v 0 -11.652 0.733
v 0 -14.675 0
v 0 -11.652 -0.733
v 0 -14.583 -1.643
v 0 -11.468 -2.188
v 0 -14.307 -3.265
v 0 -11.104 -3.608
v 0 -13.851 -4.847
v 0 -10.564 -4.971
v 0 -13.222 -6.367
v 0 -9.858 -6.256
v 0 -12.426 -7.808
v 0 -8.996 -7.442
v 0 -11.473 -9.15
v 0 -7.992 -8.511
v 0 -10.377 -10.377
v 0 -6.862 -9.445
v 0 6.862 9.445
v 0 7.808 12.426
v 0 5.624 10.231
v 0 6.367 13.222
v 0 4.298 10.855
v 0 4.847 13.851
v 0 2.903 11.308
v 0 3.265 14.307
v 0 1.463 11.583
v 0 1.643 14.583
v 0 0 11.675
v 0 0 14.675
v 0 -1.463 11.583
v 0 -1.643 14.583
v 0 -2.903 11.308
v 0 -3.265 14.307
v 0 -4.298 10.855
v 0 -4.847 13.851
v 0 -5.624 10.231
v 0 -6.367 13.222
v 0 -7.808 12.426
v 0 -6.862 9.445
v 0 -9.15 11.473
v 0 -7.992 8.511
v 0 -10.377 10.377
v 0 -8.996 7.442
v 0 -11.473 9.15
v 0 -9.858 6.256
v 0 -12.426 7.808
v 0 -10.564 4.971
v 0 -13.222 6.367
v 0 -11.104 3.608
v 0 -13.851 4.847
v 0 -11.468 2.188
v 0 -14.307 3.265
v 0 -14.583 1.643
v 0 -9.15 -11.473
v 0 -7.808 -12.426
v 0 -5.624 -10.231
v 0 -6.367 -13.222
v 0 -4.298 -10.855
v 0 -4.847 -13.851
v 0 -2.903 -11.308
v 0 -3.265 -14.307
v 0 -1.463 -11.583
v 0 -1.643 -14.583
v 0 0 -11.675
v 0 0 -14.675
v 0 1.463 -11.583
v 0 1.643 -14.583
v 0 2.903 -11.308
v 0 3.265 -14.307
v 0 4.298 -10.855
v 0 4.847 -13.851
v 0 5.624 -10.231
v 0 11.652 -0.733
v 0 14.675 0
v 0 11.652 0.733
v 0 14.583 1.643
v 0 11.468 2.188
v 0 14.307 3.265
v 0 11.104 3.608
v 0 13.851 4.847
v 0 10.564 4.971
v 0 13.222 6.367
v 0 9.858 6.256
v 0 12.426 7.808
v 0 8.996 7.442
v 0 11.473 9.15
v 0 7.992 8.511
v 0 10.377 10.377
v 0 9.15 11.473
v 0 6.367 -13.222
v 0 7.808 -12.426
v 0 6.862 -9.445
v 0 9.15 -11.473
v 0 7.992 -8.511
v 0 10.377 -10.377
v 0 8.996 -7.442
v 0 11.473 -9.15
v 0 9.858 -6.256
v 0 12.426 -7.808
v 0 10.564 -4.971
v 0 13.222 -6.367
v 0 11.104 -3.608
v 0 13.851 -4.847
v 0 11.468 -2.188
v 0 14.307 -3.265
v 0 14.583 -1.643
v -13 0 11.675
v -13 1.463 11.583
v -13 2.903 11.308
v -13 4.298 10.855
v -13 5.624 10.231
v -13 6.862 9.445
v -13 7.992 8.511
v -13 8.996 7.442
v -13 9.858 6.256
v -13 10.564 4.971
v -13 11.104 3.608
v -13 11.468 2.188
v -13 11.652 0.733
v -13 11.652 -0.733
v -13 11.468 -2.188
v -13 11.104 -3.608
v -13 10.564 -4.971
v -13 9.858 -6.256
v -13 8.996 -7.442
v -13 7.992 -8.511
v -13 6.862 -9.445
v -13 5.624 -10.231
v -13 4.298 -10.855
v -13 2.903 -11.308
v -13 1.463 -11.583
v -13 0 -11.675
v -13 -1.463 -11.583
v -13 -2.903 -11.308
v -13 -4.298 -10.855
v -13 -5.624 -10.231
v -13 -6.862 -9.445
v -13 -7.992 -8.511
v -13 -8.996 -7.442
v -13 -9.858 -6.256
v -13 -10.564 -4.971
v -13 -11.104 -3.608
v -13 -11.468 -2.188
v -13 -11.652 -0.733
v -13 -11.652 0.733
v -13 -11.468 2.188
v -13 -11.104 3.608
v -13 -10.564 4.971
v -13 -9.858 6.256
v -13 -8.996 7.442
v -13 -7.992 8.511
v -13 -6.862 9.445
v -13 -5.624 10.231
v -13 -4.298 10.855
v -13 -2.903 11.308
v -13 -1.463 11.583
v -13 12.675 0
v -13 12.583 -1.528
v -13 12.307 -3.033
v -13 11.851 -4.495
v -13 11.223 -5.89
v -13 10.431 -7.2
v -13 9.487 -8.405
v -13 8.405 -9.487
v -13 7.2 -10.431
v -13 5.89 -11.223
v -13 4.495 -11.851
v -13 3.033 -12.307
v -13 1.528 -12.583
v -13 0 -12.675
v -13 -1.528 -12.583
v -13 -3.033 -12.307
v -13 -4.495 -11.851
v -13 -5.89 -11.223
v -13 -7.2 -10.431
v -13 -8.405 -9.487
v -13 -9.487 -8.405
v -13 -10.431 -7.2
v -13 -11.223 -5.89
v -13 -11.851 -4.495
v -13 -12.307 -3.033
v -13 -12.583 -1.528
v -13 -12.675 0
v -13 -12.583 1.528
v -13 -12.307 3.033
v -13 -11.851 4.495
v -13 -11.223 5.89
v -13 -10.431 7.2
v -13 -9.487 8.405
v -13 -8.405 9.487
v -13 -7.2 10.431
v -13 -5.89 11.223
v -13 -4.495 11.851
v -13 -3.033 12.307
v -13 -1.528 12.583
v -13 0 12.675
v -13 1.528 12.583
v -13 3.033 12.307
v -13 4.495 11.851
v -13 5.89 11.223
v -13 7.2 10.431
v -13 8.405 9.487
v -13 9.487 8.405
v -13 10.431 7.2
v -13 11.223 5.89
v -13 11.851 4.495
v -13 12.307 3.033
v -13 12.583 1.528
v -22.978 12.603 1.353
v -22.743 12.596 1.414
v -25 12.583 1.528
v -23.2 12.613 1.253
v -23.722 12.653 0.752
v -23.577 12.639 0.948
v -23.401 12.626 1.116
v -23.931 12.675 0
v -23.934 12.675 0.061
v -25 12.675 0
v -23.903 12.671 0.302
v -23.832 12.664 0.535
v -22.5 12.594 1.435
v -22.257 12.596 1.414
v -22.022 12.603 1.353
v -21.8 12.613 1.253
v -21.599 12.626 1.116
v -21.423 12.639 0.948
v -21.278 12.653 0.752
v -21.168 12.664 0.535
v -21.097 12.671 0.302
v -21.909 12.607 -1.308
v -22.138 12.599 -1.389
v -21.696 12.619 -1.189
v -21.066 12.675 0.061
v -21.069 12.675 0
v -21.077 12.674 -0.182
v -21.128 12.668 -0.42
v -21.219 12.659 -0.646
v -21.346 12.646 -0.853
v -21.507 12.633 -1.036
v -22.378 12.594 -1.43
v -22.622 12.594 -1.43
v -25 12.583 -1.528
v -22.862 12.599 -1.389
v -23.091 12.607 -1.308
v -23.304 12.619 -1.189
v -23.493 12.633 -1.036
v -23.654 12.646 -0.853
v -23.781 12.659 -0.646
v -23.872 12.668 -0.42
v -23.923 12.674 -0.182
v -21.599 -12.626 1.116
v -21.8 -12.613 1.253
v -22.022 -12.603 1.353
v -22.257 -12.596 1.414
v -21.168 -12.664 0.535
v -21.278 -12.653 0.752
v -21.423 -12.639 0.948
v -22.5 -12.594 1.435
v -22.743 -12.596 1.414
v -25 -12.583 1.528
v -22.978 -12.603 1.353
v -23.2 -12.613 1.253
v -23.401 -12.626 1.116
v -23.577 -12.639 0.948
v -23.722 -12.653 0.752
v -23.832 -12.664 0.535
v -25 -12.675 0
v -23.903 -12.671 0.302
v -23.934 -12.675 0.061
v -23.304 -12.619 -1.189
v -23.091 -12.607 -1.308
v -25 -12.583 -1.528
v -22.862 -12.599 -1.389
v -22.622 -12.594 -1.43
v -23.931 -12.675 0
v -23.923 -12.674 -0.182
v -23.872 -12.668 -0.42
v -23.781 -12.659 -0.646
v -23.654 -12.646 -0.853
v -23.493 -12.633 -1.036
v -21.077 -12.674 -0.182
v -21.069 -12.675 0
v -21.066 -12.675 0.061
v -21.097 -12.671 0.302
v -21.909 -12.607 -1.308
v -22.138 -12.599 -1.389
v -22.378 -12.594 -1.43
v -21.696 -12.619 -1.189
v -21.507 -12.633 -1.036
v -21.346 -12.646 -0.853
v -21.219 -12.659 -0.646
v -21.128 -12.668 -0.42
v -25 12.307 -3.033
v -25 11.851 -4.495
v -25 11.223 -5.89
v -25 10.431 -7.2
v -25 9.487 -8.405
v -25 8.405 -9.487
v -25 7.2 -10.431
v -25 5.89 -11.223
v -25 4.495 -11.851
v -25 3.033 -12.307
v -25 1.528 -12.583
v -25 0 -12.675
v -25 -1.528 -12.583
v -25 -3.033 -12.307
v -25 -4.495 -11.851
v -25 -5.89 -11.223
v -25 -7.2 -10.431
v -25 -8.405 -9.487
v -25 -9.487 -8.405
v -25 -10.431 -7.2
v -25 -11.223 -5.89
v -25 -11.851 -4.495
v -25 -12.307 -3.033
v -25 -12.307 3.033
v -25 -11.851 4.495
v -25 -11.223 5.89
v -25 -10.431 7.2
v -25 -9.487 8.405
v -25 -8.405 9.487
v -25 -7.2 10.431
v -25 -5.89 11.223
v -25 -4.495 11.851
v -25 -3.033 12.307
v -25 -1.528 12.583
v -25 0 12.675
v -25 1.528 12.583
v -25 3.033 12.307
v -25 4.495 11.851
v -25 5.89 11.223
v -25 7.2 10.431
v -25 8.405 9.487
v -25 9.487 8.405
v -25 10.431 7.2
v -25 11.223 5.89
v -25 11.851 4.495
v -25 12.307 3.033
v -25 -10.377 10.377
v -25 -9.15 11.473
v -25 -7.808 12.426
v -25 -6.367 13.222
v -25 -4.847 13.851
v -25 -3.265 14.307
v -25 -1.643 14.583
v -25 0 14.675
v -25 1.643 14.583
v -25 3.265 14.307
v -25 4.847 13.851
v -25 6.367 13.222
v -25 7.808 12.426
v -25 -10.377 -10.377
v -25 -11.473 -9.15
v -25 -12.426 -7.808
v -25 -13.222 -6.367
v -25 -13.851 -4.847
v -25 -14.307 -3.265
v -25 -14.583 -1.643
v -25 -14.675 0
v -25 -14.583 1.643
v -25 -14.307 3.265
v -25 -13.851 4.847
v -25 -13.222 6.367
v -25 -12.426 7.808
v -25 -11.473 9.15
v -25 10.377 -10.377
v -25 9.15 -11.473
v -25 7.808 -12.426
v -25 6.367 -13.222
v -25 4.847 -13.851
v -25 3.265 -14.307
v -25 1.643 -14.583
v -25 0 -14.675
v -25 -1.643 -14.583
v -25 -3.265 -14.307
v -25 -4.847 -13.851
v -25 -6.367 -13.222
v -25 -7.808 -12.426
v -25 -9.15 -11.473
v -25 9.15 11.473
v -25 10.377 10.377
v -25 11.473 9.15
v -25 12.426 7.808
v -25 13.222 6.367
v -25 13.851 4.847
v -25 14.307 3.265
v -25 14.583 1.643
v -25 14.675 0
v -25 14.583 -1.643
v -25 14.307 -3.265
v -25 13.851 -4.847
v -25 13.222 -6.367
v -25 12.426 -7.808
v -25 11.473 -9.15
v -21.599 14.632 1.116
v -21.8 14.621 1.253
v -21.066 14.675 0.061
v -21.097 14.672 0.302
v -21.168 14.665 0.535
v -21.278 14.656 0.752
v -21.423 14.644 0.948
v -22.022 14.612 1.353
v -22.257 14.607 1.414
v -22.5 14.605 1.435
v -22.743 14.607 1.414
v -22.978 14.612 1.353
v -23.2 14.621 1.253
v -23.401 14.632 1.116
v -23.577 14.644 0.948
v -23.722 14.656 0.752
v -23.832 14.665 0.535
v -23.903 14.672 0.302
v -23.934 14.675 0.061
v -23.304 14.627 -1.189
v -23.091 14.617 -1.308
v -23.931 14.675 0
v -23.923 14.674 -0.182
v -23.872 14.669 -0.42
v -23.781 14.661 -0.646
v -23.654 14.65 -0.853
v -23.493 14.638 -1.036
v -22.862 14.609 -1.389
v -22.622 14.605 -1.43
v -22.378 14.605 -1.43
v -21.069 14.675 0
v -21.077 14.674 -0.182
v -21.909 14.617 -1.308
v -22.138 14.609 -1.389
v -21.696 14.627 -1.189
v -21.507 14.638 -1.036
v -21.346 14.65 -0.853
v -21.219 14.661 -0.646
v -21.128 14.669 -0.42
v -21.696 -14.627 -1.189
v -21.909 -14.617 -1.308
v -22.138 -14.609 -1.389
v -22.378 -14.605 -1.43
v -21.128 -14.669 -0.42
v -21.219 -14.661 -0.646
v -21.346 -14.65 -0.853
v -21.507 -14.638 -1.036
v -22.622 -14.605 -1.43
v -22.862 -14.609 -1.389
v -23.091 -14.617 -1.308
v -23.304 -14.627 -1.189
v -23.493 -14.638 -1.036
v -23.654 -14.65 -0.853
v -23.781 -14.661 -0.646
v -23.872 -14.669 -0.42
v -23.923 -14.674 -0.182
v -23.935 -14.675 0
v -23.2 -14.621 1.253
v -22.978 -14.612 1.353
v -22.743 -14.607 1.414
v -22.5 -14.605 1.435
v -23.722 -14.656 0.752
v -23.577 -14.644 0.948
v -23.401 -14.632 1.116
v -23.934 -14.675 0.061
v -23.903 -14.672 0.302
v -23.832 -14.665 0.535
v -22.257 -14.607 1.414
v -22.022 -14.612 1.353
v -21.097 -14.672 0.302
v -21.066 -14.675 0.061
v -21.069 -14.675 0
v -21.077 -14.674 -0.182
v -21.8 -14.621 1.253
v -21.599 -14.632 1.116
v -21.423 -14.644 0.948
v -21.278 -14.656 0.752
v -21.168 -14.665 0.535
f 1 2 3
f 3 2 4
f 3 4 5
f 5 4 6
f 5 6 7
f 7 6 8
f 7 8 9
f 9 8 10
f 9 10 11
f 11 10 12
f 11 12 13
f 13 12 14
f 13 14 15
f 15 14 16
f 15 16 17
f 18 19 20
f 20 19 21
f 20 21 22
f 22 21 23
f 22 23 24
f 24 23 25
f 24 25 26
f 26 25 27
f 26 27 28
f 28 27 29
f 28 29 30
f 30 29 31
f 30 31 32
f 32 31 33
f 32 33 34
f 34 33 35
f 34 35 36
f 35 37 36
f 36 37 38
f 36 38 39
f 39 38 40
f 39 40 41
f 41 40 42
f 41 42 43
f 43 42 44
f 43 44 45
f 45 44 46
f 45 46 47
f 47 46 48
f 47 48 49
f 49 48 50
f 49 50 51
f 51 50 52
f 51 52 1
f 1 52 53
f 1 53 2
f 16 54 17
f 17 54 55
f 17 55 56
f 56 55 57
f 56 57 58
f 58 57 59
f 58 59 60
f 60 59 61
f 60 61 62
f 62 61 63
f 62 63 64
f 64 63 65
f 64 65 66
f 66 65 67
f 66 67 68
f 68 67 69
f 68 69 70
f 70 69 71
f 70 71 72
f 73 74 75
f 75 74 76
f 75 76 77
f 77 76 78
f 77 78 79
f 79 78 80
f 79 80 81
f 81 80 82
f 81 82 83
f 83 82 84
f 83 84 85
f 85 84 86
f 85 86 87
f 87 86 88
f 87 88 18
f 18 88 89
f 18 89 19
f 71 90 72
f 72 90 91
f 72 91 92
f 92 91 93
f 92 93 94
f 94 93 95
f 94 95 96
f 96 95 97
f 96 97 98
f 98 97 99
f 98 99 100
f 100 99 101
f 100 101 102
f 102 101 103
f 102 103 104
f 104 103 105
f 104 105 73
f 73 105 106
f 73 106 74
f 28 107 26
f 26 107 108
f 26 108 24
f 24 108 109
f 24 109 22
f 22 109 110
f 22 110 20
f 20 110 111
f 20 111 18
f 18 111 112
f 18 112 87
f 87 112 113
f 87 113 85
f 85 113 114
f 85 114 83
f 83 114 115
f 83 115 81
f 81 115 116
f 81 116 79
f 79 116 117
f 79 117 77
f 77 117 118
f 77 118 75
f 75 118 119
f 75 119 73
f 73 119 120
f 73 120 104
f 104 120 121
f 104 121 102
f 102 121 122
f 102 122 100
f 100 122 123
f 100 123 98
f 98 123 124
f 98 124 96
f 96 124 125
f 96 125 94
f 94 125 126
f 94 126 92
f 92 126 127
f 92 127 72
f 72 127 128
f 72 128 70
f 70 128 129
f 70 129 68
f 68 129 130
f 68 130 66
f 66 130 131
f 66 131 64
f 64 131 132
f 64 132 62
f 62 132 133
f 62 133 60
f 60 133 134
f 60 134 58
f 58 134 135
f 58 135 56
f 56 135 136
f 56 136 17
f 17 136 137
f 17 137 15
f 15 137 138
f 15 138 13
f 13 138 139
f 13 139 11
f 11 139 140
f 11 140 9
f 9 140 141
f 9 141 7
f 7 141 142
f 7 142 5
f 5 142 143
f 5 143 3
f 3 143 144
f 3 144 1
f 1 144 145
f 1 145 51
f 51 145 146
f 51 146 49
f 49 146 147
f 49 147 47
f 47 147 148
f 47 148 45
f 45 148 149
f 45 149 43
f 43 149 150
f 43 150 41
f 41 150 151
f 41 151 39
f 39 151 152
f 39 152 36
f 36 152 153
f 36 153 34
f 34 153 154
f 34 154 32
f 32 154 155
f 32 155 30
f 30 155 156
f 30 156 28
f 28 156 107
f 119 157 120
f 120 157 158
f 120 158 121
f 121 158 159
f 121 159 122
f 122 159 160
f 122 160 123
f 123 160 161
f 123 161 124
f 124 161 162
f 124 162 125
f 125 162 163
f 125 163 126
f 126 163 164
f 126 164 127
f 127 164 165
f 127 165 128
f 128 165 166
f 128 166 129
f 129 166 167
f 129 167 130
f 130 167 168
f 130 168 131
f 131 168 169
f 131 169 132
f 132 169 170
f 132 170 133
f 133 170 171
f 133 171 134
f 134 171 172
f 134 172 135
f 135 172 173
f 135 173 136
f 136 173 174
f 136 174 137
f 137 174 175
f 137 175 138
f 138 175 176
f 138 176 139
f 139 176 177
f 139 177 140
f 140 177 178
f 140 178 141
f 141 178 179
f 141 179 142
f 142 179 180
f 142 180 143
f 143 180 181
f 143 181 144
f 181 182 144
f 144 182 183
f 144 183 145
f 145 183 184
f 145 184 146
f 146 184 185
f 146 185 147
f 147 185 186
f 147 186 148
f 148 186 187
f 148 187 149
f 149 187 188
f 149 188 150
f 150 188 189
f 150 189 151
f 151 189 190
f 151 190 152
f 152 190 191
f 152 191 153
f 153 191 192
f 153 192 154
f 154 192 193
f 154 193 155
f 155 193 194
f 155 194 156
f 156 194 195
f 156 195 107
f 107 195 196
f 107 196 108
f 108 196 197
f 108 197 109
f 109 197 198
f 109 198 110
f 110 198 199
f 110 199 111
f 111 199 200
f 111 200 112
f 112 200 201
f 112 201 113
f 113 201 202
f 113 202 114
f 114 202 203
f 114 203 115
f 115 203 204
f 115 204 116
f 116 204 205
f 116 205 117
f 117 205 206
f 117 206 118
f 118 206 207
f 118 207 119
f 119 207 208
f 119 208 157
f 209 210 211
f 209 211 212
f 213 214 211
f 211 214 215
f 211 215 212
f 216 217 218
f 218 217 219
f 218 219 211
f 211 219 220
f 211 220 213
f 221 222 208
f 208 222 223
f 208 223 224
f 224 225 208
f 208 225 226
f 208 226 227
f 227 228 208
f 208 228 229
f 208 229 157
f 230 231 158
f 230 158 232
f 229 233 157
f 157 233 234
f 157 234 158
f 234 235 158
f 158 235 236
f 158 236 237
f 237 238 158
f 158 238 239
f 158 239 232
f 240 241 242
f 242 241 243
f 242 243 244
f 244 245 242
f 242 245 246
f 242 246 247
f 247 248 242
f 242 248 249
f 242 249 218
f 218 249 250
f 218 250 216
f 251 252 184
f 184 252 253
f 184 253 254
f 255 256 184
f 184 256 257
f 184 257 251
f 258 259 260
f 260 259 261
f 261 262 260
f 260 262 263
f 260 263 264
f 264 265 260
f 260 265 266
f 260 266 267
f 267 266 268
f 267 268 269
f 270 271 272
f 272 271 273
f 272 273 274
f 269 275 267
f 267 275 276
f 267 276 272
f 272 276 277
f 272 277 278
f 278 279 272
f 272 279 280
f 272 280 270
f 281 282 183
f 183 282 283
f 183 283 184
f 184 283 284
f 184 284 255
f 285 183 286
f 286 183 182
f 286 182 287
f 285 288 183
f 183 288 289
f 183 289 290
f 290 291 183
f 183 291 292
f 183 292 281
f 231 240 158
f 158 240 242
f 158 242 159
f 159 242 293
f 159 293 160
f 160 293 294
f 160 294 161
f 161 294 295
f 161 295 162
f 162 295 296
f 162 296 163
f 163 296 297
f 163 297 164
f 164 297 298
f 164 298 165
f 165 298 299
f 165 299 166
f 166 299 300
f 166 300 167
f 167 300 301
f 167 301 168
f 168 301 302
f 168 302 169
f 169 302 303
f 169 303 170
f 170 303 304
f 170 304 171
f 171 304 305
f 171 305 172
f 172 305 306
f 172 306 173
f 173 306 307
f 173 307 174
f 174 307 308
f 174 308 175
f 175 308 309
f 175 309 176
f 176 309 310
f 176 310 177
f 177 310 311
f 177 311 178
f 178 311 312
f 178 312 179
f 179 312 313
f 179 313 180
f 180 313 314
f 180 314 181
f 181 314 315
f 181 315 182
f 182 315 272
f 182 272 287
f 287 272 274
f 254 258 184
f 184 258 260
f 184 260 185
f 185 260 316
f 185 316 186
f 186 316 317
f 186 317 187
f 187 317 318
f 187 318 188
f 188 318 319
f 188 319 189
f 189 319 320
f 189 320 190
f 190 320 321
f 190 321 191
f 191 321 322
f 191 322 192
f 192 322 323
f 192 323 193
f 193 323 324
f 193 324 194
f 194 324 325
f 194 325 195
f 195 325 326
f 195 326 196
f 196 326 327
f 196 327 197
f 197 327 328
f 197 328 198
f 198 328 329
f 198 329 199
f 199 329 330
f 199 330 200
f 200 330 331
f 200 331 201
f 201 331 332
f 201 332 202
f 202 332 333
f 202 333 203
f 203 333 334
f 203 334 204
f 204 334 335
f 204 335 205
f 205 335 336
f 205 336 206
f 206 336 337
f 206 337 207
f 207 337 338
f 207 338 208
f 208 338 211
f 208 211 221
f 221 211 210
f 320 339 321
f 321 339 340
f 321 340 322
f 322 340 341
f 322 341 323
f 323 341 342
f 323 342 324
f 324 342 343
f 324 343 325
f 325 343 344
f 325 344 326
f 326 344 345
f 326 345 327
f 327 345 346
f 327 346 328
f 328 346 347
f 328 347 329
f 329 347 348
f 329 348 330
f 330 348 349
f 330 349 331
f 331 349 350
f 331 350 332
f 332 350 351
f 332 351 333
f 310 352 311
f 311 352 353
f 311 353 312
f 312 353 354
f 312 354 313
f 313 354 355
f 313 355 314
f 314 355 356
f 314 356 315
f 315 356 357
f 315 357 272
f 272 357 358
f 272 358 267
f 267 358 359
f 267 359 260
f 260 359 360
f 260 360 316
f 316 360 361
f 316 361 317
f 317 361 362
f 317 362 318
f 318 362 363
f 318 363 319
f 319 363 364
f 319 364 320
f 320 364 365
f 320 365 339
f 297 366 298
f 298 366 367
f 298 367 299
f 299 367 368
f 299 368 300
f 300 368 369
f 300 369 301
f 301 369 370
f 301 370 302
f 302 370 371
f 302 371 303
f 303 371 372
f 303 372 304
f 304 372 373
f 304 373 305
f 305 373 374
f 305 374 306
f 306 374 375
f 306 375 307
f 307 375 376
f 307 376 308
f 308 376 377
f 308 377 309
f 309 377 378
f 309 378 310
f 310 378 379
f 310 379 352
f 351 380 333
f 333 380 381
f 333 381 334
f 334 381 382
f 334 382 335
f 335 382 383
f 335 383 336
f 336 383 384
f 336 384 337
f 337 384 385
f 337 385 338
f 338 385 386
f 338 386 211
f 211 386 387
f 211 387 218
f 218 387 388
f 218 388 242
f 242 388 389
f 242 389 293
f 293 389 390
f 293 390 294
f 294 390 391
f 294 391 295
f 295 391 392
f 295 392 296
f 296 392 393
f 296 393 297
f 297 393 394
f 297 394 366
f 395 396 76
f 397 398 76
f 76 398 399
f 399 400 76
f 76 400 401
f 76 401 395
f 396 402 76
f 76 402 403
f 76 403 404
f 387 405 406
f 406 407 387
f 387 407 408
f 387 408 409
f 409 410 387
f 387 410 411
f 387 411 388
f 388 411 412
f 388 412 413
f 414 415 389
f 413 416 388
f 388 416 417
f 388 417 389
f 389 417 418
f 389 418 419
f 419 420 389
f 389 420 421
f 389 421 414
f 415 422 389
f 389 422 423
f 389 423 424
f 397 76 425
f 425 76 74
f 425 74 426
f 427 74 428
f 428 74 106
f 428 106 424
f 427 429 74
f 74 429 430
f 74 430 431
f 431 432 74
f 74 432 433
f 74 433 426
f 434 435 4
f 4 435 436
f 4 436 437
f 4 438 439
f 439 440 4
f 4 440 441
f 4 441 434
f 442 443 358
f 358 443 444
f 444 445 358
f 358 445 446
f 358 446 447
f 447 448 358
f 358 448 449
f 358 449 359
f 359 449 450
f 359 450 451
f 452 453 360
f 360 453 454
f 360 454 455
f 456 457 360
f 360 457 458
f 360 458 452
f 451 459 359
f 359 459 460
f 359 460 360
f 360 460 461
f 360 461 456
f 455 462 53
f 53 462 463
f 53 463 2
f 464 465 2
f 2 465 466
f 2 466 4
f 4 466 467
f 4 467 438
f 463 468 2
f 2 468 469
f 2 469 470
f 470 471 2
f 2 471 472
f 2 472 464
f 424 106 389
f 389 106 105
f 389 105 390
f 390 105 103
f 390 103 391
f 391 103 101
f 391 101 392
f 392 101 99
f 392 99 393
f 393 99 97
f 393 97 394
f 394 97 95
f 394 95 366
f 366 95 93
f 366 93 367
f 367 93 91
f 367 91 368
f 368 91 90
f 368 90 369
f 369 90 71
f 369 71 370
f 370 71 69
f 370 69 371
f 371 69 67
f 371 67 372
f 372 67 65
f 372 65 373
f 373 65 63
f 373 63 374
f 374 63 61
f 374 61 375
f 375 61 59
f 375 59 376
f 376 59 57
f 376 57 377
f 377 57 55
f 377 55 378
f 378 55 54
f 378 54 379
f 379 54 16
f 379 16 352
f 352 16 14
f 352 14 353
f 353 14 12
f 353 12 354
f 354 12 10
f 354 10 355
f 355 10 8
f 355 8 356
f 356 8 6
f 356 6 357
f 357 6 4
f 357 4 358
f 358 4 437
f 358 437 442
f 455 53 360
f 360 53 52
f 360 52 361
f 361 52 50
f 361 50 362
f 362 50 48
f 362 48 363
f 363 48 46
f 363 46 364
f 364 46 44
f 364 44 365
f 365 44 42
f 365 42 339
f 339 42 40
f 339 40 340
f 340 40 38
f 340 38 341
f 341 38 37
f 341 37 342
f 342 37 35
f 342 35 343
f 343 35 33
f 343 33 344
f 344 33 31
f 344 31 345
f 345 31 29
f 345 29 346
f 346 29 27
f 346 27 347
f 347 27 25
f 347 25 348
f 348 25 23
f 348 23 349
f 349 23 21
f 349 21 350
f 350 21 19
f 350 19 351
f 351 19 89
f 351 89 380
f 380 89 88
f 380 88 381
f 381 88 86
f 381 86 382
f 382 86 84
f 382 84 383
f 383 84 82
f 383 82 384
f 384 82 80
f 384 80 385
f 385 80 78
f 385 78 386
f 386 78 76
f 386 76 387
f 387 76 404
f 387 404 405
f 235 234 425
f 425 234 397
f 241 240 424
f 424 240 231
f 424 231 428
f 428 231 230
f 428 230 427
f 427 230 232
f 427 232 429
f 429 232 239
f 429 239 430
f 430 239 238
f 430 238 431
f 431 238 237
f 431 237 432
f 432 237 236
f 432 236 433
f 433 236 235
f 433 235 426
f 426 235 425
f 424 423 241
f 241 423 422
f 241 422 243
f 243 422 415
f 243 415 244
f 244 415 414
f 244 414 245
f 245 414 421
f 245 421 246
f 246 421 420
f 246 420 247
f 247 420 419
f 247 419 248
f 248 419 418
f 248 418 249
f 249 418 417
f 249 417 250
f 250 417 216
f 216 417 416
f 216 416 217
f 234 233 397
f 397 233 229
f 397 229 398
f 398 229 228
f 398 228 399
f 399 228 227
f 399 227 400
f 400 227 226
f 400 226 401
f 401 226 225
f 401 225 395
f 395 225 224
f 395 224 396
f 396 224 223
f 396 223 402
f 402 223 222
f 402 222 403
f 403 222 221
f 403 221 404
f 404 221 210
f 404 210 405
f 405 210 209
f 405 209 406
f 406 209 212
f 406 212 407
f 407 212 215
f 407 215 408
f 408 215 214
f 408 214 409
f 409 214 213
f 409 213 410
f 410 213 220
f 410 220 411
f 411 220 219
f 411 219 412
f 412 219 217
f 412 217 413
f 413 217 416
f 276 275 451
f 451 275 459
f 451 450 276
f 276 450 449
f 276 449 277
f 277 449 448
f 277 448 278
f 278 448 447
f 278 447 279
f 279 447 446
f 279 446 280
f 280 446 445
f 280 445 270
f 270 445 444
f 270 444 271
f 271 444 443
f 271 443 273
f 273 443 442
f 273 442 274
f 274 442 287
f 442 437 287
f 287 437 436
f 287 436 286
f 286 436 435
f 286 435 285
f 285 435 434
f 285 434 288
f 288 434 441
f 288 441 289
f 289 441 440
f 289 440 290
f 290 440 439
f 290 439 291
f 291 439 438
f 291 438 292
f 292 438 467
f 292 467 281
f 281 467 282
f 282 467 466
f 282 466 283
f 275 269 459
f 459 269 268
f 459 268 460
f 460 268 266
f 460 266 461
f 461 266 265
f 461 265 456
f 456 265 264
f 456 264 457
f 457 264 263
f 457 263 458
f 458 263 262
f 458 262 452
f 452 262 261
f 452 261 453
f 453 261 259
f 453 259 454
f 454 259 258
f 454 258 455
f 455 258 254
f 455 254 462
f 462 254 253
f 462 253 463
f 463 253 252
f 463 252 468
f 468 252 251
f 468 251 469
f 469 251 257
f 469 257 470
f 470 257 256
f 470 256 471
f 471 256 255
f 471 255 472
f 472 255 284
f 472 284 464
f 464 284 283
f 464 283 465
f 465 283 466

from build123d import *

# Parameters (mm, degrees)
CROQUIS4_R                 = 1.435
CORTAR_EXTRUIR1_DEPTH      = 15.675
CORTAR_EXTRUIR1_DEPTH_BACK = 15.675


with BuildPart() as part:
    # Croquis3 → Revolución1 (revolve)
    with BuildSketch(Plane(origin=(0, 0, 0), x_dir=(1, 0, 0), z_dir=(0, 1, 0))):
        Polygon((0, 11.675), (-13, 11.675), (-13, 12.675), (-25, 12.675), (-25, 14.675), (0, 14.675), align=None)
    revolve(axis=Axis((-30.367380332, 0, 0), (1, 0, 0)))

    # Croquis4 → Cortar-Extruir1 (cut, two sides)
    with BuildSketch(Plane(origin=(0, 0, 0), x_dir=(1, 0, 0), z_dir=(0, 1, 0))) as cortar_extruir1_sk:
        with Locations((-22.5, 0)):
            Circle(CROQUIS4_R)
    extrude(amount=CORTAR_EXTRUIR1_DEPTH, mode=Mode.SUBTRACT)
    extrude(cortar_extruir1_sk.sketch, amount=-CORTAR_EXTRUIR1_DEPTH_BACK, mode=Mode.SUBTRACT)


solid = part.part
